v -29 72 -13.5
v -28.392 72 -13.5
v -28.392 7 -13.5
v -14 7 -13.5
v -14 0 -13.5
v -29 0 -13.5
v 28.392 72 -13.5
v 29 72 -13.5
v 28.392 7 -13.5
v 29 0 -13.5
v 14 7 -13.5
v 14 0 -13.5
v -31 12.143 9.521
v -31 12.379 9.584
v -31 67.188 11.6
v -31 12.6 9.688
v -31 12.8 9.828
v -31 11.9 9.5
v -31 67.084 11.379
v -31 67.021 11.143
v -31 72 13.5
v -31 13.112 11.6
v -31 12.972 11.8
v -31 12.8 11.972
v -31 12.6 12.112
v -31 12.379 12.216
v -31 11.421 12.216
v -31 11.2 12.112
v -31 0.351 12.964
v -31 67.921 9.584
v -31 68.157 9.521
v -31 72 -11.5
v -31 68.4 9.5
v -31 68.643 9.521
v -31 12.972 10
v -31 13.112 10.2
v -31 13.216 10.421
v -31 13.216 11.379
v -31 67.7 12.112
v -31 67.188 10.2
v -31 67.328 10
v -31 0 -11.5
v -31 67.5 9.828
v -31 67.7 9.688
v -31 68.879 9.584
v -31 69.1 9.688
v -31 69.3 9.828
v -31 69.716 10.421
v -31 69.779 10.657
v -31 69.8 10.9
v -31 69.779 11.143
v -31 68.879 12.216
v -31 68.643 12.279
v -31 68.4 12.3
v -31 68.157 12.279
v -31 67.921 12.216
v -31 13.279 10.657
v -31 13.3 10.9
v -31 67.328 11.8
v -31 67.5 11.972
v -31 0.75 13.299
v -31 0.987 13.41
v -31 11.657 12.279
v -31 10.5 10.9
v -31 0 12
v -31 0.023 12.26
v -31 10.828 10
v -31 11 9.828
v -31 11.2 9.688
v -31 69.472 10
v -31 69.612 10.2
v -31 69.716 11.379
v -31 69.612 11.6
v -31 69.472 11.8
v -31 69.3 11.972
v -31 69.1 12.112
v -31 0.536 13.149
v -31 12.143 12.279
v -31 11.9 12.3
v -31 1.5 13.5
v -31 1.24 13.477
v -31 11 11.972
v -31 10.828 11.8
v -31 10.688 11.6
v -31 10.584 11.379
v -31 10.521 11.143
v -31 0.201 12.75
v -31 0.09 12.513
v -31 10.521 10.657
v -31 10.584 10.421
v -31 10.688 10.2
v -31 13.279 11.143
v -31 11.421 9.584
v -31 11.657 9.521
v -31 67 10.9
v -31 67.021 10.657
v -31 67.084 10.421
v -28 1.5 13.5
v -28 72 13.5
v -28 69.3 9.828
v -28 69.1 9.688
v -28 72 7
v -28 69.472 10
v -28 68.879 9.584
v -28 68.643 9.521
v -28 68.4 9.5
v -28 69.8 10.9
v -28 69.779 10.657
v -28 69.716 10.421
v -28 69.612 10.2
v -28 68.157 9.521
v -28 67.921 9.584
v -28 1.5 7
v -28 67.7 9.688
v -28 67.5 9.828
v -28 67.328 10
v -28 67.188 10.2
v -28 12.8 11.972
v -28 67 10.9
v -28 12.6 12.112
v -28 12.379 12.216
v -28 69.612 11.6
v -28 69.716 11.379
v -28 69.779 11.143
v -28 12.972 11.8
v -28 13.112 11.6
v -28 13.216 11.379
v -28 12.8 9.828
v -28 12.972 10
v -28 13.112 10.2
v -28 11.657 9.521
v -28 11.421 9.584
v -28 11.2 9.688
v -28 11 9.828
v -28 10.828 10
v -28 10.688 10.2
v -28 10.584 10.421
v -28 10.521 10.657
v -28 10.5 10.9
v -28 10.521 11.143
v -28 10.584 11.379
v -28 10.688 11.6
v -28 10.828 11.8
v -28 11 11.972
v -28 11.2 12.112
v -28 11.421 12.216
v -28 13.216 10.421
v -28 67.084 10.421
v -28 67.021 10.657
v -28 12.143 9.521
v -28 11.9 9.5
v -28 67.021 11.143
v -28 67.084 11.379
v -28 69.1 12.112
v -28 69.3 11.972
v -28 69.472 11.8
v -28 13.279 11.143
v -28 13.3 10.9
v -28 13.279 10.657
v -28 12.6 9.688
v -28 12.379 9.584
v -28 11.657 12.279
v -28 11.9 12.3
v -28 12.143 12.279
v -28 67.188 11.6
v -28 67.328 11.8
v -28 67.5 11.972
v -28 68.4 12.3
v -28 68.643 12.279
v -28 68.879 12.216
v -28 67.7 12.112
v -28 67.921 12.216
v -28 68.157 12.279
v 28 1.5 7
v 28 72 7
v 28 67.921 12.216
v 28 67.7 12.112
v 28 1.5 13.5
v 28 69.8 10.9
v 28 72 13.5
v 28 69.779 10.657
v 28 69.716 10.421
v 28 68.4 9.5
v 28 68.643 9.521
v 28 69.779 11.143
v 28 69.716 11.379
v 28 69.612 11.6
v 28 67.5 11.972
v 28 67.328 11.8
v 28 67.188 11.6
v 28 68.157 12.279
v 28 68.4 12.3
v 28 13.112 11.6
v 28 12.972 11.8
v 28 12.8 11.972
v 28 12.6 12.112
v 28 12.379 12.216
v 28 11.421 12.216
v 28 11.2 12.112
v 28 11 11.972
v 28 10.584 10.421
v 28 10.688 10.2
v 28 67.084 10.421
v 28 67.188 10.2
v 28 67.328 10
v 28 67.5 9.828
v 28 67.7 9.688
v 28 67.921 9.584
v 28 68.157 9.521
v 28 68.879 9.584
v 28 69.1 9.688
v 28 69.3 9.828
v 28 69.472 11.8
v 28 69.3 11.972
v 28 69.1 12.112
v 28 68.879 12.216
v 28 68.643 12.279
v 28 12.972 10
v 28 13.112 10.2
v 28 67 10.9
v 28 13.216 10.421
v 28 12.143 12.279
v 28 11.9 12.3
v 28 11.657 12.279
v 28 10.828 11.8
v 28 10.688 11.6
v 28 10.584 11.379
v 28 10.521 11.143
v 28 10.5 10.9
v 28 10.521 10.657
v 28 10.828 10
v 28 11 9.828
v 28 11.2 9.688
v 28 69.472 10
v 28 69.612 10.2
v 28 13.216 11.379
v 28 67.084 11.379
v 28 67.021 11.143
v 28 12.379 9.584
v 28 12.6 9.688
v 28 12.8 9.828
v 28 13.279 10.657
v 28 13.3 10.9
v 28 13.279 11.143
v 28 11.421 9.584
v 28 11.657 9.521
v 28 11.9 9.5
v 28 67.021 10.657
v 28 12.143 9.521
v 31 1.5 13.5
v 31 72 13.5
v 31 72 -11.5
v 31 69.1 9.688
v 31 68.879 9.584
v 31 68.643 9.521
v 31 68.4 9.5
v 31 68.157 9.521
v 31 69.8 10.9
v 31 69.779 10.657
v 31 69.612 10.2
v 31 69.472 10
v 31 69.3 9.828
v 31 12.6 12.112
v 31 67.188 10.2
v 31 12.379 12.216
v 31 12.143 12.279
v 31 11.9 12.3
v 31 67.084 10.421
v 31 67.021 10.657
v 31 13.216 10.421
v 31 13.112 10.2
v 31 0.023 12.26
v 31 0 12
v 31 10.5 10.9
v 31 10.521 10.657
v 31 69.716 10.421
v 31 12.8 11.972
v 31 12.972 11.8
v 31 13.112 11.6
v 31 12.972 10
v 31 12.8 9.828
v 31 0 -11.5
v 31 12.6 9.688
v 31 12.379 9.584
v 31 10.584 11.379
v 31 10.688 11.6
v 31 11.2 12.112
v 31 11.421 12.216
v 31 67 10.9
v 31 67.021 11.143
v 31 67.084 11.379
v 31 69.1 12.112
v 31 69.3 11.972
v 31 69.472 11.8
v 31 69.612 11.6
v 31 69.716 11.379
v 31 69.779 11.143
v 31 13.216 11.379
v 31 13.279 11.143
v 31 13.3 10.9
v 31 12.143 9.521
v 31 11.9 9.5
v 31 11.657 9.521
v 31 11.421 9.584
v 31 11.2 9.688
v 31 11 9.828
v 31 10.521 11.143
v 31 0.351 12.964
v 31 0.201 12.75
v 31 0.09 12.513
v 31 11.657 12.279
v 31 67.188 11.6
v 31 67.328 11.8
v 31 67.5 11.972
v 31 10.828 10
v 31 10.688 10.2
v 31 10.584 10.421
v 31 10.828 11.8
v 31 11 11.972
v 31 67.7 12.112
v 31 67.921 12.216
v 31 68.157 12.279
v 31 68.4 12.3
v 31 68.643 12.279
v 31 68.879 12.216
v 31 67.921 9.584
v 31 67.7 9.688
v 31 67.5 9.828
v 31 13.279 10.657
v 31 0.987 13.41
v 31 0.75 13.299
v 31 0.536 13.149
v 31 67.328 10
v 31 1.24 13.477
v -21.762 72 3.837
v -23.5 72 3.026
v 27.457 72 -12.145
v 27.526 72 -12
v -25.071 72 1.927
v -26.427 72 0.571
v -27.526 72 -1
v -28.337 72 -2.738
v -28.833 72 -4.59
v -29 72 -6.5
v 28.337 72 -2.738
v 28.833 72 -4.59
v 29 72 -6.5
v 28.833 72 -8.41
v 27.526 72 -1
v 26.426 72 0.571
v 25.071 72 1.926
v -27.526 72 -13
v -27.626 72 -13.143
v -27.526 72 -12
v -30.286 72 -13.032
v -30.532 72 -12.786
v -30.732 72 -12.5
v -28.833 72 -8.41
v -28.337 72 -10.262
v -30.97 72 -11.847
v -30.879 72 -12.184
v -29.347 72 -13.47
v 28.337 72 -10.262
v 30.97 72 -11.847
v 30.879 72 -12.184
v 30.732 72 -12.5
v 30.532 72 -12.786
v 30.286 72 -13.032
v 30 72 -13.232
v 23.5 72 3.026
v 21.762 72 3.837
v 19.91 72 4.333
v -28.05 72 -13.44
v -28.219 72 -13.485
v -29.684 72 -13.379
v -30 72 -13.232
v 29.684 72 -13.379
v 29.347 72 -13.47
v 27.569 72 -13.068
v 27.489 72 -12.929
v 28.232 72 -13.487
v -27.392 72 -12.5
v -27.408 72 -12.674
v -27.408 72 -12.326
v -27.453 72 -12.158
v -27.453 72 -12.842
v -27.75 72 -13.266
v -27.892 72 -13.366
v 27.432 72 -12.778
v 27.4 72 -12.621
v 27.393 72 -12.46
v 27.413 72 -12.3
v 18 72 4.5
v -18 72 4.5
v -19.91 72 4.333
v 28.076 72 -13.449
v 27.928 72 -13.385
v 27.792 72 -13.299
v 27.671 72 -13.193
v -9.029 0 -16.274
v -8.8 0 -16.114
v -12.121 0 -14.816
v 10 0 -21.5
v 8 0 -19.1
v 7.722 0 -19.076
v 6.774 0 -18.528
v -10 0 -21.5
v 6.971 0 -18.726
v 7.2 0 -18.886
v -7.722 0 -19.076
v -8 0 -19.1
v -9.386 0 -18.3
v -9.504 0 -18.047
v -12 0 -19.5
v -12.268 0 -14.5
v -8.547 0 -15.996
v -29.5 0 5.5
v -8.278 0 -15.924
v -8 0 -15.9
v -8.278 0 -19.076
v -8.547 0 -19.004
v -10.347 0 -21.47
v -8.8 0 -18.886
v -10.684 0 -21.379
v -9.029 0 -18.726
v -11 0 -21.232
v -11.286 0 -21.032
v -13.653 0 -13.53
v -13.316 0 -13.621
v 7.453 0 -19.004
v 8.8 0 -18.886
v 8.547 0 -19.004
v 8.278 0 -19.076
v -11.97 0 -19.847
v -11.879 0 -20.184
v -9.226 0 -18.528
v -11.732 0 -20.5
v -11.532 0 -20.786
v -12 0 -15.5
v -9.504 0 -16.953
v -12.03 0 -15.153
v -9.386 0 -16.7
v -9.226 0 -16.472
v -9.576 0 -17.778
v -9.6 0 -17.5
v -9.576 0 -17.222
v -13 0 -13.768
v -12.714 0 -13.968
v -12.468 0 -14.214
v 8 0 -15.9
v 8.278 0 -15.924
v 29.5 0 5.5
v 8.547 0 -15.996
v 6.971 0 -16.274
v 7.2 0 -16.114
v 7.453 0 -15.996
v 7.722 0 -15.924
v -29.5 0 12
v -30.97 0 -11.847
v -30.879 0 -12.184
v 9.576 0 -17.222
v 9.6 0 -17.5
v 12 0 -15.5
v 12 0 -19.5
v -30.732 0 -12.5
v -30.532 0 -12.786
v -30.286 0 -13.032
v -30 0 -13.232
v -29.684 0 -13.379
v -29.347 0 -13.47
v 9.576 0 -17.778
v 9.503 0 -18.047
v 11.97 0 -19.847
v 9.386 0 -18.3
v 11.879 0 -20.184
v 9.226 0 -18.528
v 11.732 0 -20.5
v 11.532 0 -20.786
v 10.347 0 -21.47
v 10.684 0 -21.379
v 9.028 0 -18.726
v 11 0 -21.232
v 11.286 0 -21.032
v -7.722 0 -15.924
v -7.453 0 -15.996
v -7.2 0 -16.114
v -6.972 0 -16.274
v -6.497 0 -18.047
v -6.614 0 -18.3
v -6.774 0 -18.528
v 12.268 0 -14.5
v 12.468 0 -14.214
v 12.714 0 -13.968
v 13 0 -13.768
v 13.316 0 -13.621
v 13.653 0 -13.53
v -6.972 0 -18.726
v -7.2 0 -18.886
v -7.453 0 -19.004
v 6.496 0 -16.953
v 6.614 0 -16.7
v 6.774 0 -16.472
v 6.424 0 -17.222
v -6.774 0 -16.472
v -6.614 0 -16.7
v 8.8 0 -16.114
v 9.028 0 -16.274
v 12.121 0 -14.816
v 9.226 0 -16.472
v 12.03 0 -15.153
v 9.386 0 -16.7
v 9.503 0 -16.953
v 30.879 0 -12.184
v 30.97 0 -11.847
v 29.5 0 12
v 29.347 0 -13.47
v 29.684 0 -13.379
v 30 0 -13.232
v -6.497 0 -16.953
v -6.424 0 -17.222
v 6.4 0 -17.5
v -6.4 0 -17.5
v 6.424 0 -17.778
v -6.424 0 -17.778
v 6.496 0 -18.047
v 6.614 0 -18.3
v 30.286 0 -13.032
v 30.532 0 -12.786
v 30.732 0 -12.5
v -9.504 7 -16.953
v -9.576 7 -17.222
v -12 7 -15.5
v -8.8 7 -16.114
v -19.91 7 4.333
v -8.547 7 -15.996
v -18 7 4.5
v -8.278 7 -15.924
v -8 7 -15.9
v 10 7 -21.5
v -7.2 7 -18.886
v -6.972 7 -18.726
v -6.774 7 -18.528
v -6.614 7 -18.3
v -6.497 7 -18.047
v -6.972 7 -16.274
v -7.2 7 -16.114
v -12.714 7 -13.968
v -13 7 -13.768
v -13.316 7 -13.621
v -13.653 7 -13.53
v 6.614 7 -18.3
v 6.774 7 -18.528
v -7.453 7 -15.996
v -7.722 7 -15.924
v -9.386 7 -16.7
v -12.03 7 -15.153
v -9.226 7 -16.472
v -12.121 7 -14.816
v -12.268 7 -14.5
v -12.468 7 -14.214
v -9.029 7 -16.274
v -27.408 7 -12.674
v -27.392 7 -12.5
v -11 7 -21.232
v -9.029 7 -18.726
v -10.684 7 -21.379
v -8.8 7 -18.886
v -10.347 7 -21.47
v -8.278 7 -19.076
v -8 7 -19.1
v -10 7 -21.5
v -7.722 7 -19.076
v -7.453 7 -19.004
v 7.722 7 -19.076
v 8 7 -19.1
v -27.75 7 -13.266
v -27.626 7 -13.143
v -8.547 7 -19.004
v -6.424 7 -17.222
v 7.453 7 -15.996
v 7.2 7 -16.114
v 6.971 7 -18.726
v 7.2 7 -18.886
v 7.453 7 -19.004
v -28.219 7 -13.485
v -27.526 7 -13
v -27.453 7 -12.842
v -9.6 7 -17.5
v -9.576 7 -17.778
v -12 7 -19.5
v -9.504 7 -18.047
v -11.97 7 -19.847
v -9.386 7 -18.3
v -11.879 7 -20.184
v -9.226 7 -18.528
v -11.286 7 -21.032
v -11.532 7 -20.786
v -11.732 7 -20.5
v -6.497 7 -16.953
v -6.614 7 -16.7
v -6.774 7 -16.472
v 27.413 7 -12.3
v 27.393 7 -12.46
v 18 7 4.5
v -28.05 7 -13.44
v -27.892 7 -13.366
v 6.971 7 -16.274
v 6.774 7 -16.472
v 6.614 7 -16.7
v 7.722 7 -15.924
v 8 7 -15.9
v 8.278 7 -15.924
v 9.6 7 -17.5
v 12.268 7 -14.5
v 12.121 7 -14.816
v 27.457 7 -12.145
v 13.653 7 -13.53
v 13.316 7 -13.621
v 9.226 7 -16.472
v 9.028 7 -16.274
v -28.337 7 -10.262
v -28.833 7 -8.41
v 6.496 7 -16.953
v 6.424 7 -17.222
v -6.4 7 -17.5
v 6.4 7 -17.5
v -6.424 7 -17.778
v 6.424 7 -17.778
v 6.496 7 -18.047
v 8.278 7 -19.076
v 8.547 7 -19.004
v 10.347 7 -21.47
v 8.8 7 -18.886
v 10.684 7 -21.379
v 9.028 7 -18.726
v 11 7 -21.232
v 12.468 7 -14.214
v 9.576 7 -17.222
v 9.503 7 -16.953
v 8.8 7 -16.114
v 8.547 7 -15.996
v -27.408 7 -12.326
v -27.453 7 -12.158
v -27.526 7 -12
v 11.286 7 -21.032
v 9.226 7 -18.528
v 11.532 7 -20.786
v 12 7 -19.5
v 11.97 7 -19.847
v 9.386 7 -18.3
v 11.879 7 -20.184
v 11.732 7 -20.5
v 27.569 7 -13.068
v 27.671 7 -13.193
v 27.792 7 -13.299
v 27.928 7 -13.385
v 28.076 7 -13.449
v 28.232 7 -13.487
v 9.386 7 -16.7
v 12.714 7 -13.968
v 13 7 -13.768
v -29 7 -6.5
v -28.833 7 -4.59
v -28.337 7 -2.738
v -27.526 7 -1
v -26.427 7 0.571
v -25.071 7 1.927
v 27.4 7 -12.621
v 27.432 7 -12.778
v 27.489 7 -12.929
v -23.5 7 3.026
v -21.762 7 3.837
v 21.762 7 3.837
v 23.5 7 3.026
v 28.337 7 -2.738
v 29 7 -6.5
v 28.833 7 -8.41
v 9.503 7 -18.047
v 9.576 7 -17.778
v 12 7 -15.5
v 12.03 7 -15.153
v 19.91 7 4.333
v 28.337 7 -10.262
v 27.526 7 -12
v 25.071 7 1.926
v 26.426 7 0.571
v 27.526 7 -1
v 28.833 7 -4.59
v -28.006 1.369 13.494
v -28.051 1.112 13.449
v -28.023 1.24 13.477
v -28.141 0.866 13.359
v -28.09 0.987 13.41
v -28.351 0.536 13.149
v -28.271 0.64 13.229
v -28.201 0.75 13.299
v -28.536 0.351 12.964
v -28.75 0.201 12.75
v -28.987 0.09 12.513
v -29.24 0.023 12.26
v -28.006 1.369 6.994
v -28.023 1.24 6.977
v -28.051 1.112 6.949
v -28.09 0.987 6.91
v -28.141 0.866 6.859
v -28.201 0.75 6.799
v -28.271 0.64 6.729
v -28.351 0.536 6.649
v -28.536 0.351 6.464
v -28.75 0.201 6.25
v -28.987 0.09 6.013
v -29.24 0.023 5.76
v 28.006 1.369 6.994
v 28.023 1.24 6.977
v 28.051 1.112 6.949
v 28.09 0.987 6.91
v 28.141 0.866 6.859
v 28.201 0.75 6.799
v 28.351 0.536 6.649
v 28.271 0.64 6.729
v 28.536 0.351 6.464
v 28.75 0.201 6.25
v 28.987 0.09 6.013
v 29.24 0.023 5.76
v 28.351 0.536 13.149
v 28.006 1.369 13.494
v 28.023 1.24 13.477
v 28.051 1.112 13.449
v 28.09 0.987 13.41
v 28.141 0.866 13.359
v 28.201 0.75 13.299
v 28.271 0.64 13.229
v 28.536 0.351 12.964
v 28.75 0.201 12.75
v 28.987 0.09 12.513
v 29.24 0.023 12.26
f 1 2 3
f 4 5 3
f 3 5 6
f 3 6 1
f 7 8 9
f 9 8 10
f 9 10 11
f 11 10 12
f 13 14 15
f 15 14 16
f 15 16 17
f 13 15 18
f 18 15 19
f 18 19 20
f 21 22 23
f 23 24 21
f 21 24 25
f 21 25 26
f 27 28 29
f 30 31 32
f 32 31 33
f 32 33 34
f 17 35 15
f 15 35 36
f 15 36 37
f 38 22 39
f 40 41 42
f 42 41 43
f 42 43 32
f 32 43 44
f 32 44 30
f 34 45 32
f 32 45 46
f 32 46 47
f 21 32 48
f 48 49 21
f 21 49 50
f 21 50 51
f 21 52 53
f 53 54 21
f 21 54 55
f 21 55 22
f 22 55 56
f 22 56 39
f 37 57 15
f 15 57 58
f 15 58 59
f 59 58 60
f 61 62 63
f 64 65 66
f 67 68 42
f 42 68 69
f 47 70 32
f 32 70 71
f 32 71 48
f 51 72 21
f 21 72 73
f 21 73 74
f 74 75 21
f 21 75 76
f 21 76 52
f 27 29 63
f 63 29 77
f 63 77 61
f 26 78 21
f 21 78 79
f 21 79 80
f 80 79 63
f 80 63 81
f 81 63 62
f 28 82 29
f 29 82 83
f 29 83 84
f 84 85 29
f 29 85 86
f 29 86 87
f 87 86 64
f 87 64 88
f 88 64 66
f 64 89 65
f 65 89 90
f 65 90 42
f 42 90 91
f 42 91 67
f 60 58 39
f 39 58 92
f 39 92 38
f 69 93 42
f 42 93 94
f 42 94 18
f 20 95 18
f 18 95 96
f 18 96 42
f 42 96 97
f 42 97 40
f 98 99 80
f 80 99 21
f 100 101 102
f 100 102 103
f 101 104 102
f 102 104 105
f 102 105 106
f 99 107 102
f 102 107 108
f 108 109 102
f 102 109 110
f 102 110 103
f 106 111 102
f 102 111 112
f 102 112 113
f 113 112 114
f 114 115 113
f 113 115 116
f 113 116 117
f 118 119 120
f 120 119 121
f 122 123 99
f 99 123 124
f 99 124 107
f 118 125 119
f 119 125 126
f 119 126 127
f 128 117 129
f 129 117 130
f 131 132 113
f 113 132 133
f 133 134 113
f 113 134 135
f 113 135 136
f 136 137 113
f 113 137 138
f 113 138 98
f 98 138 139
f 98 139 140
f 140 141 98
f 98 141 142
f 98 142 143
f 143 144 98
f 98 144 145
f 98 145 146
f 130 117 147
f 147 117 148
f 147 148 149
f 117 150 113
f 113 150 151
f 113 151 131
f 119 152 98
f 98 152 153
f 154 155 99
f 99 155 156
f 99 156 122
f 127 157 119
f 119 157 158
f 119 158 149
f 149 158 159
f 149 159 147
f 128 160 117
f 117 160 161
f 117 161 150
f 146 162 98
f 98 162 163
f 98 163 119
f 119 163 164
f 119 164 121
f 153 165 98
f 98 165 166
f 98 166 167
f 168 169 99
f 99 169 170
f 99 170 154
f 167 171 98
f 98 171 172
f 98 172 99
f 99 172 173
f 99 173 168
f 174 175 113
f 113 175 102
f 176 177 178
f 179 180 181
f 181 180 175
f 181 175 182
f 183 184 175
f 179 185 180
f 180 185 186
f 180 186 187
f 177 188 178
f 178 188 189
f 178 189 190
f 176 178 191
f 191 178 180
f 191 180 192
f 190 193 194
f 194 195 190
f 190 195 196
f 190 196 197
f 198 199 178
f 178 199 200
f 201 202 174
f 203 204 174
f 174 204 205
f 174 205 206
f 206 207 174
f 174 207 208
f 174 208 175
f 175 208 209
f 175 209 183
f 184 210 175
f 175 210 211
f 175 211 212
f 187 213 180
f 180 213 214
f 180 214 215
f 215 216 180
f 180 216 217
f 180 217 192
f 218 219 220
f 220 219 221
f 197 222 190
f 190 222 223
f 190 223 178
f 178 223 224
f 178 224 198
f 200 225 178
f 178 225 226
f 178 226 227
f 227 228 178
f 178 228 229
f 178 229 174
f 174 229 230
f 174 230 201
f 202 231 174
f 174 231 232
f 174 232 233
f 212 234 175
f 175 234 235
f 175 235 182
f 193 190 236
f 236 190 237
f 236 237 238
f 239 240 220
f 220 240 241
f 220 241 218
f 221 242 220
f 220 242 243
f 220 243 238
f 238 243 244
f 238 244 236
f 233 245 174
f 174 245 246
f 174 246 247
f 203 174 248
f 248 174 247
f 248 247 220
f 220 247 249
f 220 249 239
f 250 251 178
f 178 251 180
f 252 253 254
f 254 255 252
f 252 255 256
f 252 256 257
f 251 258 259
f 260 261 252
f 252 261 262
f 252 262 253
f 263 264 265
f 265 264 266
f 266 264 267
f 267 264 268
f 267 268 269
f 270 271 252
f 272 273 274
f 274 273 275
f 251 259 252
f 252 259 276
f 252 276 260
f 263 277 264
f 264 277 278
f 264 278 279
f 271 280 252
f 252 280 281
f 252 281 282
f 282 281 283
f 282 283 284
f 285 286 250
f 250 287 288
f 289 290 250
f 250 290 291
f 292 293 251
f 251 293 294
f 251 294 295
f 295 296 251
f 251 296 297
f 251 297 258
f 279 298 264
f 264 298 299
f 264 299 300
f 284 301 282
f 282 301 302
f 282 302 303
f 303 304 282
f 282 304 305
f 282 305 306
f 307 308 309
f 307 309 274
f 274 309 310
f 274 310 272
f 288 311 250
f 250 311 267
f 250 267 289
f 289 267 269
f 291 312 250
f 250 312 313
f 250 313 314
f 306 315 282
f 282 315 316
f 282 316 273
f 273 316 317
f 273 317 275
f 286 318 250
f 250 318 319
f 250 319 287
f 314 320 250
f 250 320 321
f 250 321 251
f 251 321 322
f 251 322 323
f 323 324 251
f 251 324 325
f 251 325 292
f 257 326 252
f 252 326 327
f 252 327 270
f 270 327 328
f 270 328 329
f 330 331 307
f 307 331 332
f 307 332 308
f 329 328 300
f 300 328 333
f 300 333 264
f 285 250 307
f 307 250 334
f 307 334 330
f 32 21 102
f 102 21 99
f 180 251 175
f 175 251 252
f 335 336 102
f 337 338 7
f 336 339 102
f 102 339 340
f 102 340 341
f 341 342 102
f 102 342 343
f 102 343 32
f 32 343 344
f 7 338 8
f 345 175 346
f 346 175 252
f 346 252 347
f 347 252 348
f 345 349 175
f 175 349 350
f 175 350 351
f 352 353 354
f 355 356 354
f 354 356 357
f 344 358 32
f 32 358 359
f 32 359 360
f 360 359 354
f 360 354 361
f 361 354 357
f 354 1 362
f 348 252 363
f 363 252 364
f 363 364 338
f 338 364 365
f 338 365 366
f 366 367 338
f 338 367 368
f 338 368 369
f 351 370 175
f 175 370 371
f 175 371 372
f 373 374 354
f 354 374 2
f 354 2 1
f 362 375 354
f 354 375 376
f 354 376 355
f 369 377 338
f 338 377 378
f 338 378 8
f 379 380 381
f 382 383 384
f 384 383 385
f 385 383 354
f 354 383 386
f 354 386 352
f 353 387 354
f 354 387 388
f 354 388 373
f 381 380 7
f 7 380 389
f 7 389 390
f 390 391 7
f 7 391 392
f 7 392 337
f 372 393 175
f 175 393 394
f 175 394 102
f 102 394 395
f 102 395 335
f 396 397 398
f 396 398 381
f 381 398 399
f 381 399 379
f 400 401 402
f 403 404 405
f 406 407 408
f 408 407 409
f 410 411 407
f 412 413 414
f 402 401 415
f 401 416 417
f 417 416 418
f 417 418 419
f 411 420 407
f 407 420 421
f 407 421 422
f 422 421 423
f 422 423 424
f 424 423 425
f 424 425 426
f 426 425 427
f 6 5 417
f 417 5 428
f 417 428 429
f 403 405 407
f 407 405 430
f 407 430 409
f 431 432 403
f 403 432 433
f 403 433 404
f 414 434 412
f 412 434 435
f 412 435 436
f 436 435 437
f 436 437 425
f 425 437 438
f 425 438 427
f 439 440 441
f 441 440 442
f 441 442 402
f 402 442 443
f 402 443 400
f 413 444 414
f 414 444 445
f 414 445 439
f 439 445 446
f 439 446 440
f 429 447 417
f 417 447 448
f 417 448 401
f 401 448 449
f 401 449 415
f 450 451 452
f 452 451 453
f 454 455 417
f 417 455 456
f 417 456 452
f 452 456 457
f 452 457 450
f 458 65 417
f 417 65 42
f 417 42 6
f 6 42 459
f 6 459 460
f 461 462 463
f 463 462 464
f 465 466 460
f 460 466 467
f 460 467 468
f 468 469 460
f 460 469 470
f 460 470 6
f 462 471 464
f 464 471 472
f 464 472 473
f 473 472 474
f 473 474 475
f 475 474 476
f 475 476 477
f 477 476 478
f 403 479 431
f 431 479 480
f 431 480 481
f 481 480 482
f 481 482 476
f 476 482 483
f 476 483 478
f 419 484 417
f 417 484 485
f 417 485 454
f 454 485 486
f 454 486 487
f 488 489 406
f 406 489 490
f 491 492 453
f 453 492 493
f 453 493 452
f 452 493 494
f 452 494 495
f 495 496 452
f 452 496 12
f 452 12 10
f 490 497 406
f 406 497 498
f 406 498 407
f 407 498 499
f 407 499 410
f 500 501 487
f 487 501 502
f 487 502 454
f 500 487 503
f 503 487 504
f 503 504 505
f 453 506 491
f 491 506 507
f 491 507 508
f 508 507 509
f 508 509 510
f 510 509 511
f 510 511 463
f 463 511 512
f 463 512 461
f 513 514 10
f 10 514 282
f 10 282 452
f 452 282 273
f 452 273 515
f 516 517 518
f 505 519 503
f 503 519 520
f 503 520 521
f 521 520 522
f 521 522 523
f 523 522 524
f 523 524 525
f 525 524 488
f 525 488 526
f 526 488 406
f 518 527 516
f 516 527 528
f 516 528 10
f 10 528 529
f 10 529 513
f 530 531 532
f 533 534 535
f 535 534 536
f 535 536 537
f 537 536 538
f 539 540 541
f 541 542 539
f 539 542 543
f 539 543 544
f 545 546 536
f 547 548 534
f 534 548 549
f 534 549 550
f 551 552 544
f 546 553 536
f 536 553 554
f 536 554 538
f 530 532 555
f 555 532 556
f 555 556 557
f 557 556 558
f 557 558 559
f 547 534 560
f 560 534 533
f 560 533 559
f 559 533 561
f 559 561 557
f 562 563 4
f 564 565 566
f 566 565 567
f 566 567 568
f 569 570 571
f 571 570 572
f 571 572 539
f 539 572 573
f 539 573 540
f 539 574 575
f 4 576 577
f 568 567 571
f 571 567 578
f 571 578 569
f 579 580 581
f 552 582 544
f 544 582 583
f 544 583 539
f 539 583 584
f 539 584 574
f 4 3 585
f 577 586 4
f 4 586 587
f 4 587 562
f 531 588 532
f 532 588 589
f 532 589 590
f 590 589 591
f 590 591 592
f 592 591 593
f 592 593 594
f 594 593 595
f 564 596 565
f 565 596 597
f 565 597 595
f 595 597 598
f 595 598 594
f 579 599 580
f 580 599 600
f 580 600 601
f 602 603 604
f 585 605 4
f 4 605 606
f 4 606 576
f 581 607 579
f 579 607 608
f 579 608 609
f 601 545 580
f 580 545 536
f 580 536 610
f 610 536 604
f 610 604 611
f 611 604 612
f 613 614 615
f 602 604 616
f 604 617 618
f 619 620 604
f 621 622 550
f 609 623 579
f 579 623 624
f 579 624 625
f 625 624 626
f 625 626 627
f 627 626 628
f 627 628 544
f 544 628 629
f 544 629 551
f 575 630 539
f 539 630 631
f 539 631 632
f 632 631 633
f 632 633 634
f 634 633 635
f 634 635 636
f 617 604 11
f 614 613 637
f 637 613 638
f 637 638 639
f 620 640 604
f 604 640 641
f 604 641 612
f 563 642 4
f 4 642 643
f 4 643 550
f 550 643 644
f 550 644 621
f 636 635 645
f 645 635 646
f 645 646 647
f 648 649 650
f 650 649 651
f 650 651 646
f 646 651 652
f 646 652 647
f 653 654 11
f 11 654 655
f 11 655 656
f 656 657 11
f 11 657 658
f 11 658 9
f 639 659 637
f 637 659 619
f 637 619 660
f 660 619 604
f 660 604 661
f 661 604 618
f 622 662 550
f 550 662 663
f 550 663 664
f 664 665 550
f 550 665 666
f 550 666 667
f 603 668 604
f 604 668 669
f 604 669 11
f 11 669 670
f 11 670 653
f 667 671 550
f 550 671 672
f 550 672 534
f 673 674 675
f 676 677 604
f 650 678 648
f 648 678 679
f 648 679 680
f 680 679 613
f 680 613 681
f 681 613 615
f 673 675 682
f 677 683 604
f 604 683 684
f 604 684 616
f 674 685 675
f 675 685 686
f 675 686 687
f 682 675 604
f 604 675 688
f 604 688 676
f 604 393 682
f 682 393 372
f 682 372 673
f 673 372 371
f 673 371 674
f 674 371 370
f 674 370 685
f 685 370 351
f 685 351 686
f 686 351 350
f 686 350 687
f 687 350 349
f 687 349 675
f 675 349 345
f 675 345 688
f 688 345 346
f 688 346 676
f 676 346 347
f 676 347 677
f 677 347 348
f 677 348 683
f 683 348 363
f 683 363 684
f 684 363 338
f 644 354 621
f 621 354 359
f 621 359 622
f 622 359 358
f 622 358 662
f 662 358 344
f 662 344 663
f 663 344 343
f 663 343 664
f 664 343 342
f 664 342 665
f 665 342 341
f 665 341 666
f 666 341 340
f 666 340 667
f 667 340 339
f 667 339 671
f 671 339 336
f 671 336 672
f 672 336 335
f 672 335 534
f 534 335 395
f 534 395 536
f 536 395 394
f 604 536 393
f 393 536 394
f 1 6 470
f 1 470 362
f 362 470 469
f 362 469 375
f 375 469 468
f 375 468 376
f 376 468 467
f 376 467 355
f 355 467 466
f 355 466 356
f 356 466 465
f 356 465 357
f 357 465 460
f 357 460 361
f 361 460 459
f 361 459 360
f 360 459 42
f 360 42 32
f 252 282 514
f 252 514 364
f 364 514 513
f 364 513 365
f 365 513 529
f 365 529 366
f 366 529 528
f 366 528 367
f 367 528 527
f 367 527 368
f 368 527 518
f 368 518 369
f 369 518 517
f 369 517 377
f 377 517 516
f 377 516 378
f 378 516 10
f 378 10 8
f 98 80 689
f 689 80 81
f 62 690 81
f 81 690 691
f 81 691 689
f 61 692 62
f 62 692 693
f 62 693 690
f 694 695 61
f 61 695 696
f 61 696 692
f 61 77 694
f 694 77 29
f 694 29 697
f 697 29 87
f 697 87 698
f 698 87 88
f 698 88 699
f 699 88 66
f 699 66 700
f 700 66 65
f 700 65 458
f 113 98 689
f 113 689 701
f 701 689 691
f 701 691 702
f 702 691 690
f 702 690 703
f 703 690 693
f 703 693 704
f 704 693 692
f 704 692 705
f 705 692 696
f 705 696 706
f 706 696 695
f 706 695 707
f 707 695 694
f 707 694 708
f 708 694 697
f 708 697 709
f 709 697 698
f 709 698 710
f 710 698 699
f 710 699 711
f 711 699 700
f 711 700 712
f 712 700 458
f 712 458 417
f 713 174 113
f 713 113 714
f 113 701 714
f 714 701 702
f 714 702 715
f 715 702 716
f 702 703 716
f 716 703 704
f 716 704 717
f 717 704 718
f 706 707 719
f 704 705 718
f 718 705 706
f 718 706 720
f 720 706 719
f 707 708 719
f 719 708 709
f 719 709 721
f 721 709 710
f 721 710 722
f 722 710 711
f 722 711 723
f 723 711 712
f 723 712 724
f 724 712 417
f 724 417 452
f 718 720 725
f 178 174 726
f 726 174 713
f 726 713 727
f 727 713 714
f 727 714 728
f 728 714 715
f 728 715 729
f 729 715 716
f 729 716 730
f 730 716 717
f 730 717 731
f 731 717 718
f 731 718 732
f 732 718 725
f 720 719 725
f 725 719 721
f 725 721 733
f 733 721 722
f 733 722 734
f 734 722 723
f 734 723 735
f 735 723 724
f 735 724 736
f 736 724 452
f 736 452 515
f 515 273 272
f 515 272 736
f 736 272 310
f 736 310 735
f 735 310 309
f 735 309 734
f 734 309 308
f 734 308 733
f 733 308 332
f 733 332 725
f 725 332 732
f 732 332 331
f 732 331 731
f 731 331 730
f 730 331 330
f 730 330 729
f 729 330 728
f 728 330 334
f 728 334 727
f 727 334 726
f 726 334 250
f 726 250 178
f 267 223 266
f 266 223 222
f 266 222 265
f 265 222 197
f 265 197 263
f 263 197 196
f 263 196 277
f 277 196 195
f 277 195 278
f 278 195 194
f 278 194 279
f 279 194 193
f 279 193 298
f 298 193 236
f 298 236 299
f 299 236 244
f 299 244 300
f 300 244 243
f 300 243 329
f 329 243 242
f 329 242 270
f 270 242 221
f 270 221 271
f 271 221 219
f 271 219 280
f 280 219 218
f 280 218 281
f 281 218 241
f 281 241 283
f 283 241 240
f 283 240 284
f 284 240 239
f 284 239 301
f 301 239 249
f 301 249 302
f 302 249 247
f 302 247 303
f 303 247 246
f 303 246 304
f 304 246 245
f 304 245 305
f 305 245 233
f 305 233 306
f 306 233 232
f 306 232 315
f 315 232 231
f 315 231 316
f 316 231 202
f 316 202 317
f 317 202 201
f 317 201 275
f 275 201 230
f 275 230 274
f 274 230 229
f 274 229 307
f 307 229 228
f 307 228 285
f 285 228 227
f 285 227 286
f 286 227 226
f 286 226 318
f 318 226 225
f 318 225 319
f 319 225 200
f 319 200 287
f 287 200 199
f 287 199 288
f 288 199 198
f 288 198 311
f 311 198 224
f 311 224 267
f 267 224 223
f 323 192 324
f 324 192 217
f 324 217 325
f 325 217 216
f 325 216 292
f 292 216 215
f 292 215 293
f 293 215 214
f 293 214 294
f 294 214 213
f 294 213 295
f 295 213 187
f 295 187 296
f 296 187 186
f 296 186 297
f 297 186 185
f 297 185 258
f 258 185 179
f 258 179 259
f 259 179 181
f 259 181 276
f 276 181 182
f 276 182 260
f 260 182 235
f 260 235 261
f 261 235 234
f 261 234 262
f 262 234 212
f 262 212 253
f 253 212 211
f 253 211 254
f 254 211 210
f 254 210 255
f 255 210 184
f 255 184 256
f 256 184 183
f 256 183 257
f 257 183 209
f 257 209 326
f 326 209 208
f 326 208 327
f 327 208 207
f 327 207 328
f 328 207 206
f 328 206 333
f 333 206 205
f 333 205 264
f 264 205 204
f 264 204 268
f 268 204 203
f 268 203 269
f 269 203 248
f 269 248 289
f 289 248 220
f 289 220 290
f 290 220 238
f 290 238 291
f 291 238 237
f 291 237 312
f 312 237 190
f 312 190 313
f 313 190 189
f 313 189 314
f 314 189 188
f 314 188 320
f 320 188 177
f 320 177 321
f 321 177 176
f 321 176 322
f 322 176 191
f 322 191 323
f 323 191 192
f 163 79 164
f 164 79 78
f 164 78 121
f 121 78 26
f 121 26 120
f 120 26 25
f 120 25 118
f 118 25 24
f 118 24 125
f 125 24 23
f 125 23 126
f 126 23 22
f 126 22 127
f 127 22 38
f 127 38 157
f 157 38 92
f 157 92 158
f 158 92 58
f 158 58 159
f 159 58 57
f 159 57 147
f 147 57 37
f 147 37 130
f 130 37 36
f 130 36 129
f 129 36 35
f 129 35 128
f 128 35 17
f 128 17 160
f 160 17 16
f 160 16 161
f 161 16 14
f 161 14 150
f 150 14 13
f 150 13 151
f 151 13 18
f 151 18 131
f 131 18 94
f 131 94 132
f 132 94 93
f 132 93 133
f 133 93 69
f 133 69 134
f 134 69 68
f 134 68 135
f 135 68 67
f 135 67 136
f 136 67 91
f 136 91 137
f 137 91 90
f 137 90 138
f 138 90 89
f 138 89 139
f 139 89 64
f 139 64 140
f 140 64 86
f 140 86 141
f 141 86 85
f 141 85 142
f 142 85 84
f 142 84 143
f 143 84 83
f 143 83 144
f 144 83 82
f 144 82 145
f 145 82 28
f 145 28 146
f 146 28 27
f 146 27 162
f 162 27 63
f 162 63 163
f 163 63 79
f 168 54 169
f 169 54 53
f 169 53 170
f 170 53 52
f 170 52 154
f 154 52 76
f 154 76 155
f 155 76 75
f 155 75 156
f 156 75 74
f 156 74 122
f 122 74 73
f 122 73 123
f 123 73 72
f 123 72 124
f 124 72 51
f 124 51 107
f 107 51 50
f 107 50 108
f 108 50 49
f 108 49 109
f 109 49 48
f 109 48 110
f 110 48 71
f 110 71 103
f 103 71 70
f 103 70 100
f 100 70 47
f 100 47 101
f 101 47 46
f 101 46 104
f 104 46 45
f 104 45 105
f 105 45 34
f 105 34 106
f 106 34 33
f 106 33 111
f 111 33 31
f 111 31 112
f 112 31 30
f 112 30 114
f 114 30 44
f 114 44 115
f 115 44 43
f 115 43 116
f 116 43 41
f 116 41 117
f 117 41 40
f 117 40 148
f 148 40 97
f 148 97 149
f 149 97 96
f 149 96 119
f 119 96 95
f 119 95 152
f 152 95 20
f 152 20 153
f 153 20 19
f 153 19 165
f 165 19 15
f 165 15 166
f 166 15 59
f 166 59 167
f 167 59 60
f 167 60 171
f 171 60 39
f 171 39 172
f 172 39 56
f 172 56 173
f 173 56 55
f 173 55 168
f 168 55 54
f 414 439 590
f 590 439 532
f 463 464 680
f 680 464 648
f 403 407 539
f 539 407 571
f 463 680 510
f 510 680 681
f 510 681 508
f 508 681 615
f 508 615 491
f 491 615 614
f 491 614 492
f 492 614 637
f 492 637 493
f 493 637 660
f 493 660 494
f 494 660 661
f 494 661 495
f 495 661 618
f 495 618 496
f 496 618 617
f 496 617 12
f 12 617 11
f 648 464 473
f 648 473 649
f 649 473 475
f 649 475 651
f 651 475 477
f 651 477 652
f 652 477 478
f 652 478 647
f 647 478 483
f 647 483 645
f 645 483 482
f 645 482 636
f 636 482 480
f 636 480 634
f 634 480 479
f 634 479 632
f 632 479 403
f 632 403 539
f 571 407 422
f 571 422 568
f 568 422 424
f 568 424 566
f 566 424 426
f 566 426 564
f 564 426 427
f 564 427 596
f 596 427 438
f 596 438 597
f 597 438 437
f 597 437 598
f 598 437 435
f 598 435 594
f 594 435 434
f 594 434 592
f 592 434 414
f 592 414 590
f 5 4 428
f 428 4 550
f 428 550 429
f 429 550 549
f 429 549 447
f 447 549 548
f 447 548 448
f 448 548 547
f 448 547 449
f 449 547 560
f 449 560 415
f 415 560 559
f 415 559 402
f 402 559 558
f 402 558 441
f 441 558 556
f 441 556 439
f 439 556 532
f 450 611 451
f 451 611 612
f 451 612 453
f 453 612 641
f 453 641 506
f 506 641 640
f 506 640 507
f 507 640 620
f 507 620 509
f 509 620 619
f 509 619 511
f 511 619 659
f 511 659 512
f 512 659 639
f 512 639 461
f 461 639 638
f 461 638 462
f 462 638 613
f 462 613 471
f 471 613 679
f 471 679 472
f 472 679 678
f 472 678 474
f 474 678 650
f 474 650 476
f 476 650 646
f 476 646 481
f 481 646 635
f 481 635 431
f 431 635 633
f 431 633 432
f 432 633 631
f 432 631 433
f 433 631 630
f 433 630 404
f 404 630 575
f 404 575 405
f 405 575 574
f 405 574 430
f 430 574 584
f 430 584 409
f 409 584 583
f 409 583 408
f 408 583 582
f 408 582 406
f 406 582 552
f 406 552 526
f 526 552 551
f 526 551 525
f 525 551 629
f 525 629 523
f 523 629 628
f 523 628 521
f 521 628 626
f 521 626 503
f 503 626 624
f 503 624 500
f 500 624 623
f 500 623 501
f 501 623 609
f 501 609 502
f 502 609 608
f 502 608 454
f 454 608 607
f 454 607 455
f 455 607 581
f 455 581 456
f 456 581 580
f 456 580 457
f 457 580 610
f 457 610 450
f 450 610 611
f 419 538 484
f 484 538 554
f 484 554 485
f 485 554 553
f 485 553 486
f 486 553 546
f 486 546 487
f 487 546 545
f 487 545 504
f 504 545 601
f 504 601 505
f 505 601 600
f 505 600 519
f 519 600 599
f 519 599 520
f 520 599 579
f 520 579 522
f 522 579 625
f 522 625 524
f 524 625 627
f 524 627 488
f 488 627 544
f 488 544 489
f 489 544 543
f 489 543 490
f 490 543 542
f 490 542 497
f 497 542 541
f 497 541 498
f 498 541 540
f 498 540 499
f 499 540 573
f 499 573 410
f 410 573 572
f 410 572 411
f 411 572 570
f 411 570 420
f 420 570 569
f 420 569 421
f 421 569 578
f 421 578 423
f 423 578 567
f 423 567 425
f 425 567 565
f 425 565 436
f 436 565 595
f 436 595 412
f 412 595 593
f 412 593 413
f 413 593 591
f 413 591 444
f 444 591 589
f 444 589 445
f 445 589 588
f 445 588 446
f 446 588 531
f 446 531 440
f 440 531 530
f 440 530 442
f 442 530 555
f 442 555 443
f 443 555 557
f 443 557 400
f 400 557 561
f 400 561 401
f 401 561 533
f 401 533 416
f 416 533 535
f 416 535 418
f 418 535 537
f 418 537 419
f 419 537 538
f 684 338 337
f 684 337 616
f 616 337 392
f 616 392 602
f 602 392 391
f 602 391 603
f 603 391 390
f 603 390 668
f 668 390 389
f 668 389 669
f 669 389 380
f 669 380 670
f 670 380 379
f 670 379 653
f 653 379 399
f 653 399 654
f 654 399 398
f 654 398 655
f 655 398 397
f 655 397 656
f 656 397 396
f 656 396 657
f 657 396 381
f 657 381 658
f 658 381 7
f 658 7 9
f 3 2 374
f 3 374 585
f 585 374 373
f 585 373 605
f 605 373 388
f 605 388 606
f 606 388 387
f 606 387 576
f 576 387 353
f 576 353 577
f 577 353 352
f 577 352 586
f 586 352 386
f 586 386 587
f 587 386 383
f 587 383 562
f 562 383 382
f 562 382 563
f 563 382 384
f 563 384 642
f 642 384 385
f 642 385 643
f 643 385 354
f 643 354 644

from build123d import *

# Parameters (mm, degrees)
BOSS_EXTRUDE1_DEPTH = 72
CUT_EXTRUDE1_DEPTH  = 65
FILLET3_R           = 2
FILLET4_R           = 1.5
SKETCH5_R           = 1.4
CUT_EXTRUDE2_DEPTH  = 96.970047411
SKETCH6_W           = 24
SKETCH6_H           = 8
BOSS_EXTRUDE3_DEPTH = 7
FILLET5_R           = 2
SKETCH7_R           = 1.6
CUT_EXTRUDE3_DEPTH  = 7
FILLET6_R           = 1


with BuildPart() as part:
    # Sketch1 → Boss-Extrude1 (new body)
    with BuildSketch(Plane(origin=(0, 0, 0), x_dir=(1, 0, 0), z_dir=(0, 1, 0))):
        Polygon((-31, 13.5), (-31, -13.5), (-28, -13.5), (-28, -7), (28, -7), (28, -13.5), (31, -13.5), (31, 13.5), (28, 13.5), (-28, 13.5), align=None)
    extrude(amount=BOSS_EXTRUDE1_DEPTH)

    # Sketch2 → Cut-Extrude1 (cut)
    with BuildSketch(Plane(origin=(0, 72, 0), x_dir=(1, 0, 0), z_dir=(0, 1, 0))):
        with BuildLine():
            Line((17.999983181, 17.5), (-18.000016819, 17.500086496))
            ThreePointArc((-18.000016819, 17.500086496), (-29.000086496, 6.499978376), (-17.999973571, -4.500086496))
            Line((-17.999973571, -4.500086496), (18.000026429, -4.5))
            ThreePointArc((18.000026429, -4.5), (29, 6.500021624), (17.999983181, 17.5))
        make_face()
    extrude(amount=-CUT_EXTRUDE1_DEPTH, mode=Mode.SUBTRACT)

    # Fillet3
    fillet3_edges = [part.edges().sort_by_distance(p)[0] for p in [
        (31, 36, -13.5),
        (-31, 36, -13.5),
    ]]
    fillet(fillet3_edges, radius=FILLET3_R)

    # Fillet4
    fillet4_edges = [part.edges().sort_by_distance(p)[0] for p in [
        (29.5, 0, 13.5),
        (28, 0, 10.25),
        (0, 0, 7),
        (-28, 0, 10.25),
        (-29.5, 0, 13.5),
    ]]
    fillet(fillet4_edges, radius=FILLET4_R)

    # Sketch5 → Cut-Extrude2 (cut, through all)
    with BuildSketch(Plane.ZY.offset(31)):
        with Locations((10.9, 68.4)):
            Circle(SKETCH5_R)
        with Locations((10.9, 11.9)):
            Circle(SKETCH5_R)
    extrude(amount=-CUT_EXTRUDE2_DEPTH, mode=Mode.SUBTRACT)

    # Sketch6 → Boss-Extrude3 (add)
    with BuildSketch(Plane(origin=(0, 0, 0), x_dir=(1, 0, 0), z_dir=(0, 1, 0))):
        with Locations((-5.6065e-05, 17.5)):
            Rectangle(SKETCH6_W, SKETCH6_H)
    extrude(amount=BOSS_EXTRUDE3_DEPTH)

    # Fillet5
    fillet5_edges = [part.edges().sort_by_distance(p)[0] for p in [
        (-12.000056065, 3.5, -21.5),
        (-12.000056065, 3.5, -13.5),
        (11.999943935, 3.5, -13.5),
        (11.999943935, 3.5, -21.5),
    ]]
    fillet(fillet5_edges, radius=FILLET5_R)

    # Sketch7 → Cut-Extrude3 (cut)
    with BuildSketch(Plane(origin=(0, 7, 0), x_dir=(1, 0, 0), z_dir=(0, 1, 0))):
        with Locations(Location((-8.000056065, 17.5, 0), (0, 0, 270))):
            Circle(SKETCH7_R)
        with Locations(Location((7.999943935, 17.5, 0), (0, 0, 270))):
            Circle(SKETCH7_R)
    extrude(amount=-CUT_EXTRUDE3_DEPTH, mode=Mode.SUBTRACT)

    # Fillet6
    fillet6_edges = [part.edges().sort_by_distance(p)[0] for p in [
        (26.485281374, 39.5, -13.5),
        (-26.485393504, 39.5, -13.5),
    ]]
    fillet(fillet6_edges, radius=FILLET6_R)


solid = part.part
